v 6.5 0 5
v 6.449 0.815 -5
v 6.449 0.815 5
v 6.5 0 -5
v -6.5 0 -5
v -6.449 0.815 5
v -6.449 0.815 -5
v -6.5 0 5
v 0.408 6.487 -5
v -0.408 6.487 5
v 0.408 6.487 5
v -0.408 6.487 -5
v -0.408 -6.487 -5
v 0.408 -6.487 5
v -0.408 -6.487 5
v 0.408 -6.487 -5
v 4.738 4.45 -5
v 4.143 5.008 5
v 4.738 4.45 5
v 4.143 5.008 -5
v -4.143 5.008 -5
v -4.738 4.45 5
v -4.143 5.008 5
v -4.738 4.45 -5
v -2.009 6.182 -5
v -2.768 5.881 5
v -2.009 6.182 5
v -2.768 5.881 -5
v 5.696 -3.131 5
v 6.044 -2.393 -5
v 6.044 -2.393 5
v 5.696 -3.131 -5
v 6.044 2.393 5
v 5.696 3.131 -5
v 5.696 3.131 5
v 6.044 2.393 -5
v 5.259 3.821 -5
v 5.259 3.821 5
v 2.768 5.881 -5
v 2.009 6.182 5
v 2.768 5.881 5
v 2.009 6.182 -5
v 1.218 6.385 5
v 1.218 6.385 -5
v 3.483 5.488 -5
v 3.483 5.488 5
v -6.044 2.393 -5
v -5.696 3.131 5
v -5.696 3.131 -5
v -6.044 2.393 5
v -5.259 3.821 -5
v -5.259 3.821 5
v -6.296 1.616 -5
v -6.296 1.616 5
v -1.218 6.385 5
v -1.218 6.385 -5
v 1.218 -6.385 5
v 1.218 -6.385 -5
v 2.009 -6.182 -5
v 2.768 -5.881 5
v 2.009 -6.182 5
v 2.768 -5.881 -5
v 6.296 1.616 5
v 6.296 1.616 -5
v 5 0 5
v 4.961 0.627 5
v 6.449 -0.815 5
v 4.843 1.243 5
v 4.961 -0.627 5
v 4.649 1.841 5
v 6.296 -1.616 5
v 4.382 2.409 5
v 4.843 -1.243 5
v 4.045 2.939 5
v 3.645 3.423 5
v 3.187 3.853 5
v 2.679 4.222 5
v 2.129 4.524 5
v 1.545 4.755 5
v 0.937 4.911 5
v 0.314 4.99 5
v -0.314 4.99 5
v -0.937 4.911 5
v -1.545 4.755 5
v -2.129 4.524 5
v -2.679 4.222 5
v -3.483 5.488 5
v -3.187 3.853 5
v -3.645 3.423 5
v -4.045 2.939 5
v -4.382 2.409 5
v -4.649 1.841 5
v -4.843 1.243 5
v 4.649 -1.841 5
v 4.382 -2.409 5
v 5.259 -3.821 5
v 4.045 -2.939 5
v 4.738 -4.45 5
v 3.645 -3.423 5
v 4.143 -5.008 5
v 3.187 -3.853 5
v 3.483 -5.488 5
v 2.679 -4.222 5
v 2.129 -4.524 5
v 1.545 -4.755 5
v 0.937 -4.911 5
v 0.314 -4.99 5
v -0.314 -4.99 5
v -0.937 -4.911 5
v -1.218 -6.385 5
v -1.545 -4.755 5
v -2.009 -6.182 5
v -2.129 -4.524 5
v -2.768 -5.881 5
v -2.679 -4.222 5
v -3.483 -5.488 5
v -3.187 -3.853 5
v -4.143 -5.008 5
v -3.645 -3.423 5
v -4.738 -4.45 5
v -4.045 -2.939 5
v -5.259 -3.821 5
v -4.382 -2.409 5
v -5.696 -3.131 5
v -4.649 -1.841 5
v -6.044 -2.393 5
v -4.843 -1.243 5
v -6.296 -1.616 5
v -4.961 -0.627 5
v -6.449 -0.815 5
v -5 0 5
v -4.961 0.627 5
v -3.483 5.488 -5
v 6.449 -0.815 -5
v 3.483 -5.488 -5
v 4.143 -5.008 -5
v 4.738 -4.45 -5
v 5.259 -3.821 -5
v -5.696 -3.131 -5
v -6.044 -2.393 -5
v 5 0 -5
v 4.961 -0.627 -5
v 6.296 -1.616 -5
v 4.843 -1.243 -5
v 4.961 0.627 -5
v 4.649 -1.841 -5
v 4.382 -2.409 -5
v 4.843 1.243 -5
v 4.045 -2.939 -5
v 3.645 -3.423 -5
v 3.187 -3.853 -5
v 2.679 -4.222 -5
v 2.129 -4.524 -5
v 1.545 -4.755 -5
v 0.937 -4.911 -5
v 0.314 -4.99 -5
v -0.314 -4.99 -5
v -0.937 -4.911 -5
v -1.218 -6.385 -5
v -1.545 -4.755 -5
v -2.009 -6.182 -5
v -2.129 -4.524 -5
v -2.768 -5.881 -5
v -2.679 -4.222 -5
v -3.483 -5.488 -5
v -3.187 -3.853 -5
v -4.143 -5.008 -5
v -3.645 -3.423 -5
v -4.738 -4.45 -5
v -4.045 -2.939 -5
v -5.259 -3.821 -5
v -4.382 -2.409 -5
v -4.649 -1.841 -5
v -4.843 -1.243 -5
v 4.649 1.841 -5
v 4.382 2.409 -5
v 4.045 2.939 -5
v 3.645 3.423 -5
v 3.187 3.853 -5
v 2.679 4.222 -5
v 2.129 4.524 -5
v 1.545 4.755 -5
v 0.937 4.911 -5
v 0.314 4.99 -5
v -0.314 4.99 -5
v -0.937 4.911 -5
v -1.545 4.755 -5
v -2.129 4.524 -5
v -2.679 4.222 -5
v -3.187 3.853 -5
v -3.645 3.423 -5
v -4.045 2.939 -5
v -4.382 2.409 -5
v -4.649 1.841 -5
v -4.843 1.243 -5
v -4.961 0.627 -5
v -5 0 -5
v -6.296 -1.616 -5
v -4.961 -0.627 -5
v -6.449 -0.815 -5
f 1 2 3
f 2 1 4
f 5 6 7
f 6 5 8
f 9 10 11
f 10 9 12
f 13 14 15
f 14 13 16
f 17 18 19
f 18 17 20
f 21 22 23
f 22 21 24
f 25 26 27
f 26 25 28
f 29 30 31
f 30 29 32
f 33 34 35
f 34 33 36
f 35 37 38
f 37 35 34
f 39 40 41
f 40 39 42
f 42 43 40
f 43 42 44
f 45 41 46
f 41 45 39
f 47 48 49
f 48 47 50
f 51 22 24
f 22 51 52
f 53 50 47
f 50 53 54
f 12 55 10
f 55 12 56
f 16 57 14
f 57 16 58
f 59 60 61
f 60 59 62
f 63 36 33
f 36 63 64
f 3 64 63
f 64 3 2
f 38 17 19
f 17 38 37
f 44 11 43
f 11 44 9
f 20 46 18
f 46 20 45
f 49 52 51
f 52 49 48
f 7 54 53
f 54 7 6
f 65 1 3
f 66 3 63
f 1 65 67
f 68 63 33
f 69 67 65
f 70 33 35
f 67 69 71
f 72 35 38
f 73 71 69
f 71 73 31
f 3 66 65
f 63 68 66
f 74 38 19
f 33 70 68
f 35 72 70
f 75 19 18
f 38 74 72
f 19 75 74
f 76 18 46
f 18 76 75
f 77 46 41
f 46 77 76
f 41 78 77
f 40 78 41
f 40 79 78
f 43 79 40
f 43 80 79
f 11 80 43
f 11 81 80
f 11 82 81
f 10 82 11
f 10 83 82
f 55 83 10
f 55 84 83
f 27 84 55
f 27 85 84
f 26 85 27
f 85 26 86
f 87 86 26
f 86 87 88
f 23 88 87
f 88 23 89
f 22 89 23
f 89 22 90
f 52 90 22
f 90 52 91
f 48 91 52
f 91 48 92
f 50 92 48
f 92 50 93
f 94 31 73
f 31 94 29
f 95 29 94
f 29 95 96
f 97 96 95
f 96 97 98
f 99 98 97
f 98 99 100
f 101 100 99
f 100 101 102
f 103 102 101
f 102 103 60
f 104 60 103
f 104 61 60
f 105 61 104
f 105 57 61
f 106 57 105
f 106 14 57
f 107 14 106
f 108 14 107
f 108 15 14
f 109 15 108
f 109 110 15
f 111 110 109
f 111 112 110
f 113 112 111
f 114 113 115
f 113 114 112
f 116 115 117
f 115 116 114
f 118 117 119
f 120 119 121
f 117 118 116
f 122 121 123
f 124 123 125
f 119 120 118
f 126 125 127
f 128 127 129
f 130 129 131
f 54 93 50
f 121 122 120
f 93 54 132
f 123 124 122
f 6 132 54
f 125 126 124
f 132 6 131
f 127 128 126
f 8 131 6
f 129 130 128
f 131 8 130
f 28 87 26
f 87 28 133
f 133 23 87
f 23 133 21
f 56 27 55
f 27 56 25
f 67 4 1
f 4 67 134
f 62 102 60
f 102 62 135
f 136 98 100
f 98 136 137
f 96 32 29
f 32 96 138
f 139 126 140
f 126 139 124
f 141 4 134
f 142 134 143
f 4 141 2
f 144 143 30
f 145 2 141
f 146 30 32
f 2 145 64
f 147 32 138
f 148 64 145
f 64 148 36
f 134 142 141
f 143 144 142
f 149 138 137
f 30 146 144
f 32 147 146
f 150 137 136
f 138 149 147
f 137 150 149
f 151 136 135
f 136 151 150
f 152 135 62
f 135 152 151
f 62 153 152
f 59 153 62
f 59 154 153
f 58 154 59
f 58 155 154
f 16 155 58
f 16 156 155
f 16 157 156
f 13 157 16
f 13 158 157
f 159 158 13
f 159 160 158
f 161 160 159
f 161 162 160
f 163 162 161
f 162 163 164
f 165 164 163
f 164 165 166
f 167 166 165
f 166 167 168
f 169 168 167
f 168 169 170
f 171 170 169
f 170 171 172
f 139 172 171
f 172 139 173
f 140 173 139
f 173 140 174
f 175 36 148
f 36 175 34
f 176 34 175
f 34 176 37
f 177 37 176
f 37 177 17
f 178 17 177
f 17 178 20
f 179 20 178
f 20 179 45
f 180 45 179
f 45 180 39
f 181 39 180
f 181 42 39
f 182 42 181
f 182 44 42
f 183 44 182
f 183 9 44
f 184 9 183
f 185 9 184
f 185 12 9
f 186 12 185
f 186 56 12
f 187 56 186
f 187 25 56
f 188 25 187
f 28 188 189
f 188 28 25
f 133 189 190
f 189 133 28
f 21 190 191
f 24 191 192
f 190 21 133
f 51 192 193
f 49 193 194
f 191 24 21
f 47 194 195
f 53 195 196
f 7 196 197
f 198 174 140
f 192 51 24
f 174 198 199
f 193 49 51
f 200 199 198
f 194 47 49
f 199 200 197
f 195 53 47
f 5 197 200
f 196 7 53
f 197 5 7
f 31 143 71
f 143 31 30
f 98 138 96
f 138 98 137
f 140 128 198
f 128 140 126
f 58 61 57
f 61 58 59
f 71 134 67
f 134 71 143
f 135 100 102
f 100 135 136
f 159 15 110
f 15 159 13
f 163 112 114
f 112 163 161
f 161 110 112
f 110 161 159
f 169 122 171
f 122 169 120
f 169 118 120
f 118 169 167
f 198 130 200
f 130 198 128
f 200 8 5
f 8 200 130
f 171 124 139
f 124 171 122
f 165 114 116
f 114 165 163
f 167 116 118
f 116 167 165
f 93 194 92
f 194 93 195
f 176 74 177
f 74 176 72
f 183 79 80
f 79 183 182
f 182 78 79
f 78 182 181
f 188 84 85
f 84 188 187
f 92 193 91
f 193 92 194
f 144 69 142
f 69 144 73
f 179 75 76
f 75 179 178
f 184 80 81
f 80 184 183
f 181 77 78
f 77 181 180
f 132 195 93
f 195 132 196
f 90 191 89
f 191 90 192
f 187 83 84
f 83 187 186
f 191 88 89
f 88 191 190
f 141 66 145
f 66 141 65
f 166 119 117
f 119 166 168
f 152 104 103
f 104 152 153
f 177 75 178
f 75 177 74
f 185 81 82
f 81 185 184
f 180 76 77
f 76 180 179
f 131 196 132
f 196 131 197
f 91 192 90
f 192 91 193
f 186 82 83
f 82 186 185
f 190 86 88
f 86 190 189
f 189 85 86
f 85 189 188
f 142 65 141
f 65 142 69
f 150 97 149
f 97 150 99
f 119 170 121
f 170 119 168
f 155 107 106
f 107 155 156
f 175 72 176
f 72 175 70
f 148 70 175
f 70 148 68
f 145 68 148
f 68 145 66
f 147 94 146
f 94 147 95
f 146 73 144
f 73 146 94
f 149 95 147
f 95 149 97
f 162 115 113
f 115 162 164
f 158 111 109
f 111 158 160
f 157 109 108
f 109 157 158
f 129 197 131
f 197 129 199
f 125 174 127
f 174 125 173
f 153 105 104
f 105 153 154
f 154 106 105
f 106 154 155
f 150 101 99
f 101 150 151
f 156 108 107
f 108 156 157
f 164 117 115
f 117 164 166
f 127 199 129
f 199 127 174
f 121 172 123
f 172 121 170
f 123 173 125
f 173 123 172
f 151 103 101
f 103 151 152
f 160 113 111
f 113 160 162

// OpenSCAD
$fn = 50;


difference() {
	union() {
		translate(v = [0, 0, -5.0000000000]) {
			cylinder(h = 10, r = 6.5000000000);
		}
	}
	union() {
		translate(v = [0, 0, -100.0000000000]) {
			cylinder(h = 200, r = 5);
		}
	}
}
